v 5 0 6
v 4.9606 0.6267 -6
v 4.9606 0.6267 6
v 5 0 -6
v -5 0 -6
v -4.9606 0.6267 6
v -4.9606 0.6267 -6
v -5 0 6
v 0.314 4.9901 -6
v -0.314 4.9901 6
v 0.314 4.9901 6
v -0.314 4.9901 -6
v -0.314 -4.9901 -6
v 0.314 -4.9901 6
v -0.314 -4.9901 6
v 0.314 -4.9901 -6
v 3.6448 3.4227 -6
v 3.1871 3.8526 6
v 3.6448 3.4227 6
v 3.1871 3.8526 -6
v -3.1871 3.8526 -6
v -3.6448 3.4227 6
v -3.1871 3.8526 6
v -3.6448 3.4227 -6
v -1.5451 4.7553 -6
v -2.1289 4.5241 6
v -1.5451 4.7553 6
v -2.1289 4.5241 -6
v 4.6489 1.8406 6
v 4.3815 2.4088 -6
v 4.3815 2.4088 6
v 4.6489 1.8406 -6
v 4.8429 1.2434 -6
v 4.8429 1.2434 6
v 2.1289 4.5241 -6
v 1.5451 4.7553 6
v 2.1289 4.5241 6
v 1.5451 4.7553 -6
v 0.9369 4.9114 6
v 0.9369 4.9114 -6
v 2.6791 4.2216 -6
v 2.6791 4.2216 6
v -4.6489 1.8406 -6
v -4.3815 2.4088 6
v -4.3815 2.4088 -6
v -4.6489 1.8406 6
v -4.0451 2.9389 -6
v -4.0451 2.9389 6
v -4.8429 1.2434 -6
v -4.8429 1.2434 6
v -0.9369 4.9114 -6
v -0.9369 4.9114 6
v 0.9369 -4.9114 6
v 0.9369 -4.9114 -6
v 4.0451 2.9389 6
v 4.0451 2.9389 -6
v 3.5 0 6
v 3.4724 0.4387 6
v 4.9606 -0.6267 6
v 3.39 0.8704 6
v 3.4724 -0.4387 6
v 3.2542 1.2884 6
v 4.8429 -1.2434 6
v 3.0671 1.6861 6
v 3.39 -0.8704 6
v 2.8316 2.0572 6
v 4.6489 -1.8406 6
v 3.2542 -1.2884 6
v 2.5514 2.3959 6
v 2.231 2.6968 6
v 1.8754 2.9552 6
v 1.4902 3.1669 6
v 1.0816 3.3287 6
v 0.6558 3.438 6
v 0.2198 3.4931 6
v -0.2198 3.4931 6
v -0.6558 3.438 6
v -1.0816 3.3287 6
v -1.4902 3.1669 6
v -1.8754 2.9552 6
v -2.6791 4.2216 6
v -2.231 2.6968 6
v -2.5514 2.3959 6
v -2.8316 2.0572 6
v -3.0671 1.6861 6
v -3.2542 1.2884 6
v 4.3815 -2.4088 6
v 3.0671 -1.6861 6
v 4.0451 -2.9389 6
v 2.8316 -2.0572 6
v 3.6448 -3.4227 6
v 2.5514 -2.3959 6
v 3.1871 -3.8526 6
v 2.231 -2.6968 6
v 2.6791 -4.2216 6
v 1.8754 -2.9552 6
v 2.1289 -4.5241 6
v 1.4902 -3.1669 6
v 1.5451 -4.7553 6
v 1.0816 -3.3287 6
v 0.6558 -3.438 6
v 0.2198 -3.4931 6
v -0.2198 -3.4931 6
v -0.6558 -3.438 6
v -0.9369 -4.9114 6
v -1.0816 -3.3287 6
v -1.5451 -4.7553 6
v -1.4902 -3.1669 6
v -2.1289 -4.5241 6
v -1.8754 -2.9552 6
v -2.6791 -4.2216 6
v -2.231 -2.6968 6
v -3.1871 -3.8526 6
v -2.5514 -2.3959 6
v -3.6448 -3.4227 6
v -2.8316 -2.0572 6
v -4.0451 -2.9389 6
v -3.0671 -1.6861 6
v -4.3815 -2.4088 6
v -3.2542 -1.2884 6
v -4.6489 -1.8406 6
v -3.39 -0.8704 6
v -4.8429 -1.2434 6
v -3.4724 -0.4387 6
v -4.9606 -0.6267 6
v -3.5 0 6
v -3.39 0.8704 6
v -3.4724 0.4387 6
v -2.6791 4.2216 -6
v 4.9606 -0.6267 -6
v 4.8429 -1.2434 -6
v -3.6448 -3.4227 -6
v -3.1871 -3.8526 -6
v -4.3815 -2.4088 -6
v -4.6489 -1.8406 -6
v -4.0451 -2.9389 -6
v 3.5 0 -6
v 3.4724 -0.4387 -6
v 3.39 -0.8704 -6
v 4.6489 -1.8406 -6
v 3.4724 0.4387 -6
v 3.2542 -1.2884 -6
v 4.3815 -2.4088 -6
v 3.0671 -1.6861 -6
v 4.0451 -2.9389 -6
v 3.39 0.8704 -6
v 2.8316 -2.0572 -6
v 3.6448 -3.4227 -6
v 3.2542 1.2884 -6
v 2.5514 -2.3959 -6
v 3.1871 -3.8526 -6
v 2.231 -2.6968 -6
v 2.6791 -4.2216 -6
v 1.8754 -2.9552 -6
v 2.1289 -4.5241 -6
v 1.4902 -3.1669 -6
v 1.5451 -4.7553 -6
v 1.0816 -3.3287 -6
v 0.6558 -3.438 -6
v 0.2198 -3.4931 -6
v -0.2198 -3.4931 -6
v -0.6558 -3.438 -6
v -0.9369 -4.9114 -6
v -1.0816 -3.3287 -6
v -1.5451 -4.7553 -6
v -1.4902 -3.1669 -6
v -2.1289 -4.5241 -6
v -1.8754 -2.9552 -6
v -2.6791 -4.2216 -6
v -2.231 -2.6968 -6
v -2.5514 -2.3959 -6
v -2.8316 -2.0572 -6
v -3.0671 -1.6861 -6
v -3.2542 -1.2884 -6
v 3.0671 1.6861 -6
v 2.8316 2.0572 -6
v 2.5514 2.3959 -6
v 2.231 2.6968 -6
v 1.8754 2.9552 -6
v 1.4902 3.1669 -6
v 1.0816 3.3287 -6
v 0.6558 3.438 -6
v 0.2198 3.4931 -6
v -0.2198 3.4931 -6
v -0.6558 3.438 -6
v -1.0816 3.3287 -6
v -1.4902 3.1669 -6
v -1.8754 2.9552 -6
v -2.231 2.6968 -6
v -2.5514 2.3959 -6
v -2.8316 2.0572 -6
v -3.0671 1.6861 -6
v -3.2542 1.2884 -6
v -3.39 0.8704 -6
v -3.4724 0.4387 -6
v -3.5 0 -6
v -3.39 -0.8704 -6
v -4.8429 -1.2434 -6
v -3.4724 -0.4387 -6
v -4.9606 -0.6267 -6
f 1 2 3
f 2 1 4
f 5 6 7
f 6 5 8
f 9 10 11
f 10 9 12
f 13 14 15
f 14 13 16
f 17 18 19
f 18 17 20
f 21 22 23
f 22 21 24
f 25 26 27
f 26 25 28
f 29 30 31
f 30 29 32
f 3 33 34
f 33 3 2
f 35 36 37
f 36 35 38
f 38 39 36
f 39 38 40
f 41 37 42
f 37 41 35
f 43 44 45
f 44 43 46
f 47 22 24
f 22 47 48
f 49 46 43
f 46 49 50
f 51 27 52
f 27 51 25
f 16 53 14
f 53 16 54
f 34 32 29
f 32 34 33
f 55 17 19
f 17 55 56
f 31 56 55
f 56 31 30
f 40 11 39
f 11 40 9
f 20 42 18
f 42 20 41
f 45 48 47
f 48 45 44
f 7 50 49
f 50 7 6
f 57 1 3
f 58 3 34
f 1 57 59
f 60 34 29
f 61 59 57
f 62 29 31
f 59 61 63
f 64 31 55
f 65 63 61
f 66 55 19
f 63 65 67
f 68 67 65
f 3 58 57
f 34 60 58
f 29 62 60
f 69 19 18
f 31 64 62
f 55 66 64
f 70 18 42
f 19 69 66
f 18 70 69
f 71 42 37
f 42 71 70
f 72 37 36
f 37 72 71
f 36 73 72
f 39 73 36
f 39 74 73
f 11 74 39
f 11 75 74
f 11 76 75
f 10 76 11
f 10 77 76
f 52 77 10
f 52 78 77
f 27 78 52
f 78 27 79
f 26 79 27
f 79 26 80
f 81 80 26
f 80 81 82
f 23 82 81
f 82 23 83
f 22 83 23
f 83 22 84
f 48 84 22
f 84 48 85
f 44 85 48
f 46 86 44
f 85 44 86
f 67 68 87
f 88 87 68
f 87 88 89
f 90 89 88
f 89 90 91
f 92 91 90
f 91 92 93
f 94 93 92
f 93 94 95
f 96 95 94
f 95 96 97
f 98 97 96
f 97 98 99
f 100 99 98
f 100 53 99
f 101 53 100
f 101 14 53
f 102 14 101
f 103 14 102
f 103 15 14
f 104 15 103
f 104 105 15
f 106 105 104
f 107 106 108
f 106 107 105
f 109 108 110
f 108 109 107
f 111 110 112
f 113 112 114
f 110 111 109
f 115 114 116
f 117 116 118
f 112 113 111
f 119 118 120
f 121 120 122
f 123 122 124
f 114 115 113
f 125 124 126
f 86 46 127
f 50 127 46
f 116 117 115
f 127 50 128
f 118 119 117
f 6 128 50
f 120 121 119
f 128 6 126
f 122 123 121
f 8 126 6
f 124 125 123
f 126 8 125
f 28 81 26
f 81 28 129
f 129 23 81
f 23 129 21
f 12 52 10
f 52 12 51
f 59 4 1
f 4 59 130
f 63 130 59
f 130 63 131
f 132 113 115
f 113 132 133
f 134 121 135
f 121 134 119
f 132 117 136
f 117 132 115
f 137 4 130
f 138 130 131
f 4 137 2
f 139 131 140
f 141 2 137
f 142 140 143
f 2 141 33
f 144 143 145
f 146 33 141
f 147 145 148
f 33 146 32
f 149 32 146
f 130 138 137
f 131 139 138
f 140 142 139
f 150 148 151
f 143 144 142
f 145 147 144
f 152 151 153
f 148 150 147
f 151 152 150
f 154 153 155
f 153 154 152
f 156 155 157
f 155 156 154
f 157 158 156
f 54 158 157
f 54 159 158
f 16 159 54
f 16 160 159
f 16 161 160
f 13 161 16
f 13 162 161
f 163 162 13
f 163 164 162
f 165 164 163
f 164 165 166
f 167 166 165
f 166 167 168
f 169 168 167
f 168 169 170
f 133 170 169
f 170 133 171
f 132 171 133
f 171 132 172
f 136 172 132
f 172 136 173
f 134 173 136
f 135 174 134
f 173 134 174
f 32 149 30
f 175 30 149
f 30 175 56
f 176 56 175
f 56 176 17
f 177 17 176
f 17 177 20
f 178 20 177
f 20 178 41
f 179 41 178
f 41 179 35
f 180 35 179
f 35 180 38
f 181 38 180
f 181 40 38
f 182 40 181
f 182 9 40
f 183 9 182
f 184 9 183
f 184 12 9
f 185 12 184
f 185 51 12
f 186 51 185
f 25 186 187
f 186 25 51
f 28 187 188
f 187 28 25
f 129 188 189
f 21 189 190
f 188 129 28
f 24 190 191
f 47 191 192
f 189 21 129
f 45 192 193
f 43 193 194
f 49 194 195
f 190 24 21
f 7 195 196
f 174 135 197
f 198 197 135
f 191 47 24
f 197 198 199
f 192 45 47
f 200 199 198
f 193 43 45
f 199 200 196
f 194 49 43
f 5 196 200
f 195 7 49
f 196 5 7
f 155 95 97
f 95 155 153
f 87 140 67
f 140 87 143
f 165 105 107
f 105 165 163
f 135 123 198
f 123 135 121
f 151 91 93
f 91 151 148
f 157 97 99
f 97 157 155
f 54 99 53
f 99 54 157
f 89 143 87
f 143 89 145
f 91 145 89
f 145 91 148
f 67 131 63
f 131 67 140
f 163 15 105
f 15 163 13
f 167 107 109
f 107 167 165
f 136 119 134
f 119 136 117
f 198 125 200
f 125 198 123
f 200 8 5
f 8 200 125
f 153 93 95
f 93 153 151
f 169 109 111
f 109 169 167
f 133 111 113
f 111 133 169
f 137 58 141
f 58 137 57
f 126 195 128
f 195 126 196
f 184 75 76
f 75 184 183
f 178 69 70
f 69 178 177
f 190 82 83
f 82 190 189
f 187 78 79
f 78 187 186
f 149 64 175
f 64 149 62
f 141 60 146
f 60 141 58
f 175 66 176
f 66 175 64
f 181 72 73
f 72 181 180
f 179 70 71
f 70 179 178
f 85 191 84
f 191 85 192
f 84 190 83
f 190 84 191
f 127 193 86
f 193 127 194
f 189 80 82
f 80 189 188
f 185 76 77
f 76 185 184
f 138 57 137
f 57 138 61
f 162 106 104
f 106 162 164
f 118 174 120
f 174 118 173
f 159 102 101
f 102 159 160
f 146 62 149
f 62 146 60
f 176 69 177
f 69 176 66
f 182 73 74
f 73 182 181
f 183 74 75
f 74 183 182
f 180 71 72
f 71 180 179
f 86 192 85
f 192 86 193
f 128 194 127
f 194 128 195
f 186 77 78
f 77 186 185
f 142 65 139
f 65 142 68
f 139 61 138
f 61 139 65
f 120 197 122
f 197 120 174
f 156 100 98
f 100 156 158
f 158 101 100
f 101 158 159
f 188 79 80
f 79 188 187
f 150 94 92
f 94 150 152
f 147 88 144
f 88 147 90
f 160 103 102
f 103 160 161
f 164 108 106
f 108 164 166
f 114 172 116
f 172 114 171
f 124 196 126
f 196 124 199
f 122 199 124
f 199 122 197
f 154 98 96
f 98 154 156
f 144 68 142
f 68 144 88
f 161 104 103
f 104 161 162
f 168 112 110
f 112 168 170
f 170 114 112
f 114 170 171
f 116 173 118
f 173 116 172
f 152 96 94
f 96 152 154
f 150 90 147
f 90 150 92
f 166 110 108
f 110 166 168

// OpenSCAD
$fn = 50;


difference() {
	union() {
		translate(v = [0, 0, -6.0000000000]) {
			cylinder(h = 12, r = 5.0000000000);
		}
	}
	union() {
		translate(v = [0, 0, -100.0000000000]) {
			cylinder(h = 200, r = 3.5000000000);
		}
	}
}
